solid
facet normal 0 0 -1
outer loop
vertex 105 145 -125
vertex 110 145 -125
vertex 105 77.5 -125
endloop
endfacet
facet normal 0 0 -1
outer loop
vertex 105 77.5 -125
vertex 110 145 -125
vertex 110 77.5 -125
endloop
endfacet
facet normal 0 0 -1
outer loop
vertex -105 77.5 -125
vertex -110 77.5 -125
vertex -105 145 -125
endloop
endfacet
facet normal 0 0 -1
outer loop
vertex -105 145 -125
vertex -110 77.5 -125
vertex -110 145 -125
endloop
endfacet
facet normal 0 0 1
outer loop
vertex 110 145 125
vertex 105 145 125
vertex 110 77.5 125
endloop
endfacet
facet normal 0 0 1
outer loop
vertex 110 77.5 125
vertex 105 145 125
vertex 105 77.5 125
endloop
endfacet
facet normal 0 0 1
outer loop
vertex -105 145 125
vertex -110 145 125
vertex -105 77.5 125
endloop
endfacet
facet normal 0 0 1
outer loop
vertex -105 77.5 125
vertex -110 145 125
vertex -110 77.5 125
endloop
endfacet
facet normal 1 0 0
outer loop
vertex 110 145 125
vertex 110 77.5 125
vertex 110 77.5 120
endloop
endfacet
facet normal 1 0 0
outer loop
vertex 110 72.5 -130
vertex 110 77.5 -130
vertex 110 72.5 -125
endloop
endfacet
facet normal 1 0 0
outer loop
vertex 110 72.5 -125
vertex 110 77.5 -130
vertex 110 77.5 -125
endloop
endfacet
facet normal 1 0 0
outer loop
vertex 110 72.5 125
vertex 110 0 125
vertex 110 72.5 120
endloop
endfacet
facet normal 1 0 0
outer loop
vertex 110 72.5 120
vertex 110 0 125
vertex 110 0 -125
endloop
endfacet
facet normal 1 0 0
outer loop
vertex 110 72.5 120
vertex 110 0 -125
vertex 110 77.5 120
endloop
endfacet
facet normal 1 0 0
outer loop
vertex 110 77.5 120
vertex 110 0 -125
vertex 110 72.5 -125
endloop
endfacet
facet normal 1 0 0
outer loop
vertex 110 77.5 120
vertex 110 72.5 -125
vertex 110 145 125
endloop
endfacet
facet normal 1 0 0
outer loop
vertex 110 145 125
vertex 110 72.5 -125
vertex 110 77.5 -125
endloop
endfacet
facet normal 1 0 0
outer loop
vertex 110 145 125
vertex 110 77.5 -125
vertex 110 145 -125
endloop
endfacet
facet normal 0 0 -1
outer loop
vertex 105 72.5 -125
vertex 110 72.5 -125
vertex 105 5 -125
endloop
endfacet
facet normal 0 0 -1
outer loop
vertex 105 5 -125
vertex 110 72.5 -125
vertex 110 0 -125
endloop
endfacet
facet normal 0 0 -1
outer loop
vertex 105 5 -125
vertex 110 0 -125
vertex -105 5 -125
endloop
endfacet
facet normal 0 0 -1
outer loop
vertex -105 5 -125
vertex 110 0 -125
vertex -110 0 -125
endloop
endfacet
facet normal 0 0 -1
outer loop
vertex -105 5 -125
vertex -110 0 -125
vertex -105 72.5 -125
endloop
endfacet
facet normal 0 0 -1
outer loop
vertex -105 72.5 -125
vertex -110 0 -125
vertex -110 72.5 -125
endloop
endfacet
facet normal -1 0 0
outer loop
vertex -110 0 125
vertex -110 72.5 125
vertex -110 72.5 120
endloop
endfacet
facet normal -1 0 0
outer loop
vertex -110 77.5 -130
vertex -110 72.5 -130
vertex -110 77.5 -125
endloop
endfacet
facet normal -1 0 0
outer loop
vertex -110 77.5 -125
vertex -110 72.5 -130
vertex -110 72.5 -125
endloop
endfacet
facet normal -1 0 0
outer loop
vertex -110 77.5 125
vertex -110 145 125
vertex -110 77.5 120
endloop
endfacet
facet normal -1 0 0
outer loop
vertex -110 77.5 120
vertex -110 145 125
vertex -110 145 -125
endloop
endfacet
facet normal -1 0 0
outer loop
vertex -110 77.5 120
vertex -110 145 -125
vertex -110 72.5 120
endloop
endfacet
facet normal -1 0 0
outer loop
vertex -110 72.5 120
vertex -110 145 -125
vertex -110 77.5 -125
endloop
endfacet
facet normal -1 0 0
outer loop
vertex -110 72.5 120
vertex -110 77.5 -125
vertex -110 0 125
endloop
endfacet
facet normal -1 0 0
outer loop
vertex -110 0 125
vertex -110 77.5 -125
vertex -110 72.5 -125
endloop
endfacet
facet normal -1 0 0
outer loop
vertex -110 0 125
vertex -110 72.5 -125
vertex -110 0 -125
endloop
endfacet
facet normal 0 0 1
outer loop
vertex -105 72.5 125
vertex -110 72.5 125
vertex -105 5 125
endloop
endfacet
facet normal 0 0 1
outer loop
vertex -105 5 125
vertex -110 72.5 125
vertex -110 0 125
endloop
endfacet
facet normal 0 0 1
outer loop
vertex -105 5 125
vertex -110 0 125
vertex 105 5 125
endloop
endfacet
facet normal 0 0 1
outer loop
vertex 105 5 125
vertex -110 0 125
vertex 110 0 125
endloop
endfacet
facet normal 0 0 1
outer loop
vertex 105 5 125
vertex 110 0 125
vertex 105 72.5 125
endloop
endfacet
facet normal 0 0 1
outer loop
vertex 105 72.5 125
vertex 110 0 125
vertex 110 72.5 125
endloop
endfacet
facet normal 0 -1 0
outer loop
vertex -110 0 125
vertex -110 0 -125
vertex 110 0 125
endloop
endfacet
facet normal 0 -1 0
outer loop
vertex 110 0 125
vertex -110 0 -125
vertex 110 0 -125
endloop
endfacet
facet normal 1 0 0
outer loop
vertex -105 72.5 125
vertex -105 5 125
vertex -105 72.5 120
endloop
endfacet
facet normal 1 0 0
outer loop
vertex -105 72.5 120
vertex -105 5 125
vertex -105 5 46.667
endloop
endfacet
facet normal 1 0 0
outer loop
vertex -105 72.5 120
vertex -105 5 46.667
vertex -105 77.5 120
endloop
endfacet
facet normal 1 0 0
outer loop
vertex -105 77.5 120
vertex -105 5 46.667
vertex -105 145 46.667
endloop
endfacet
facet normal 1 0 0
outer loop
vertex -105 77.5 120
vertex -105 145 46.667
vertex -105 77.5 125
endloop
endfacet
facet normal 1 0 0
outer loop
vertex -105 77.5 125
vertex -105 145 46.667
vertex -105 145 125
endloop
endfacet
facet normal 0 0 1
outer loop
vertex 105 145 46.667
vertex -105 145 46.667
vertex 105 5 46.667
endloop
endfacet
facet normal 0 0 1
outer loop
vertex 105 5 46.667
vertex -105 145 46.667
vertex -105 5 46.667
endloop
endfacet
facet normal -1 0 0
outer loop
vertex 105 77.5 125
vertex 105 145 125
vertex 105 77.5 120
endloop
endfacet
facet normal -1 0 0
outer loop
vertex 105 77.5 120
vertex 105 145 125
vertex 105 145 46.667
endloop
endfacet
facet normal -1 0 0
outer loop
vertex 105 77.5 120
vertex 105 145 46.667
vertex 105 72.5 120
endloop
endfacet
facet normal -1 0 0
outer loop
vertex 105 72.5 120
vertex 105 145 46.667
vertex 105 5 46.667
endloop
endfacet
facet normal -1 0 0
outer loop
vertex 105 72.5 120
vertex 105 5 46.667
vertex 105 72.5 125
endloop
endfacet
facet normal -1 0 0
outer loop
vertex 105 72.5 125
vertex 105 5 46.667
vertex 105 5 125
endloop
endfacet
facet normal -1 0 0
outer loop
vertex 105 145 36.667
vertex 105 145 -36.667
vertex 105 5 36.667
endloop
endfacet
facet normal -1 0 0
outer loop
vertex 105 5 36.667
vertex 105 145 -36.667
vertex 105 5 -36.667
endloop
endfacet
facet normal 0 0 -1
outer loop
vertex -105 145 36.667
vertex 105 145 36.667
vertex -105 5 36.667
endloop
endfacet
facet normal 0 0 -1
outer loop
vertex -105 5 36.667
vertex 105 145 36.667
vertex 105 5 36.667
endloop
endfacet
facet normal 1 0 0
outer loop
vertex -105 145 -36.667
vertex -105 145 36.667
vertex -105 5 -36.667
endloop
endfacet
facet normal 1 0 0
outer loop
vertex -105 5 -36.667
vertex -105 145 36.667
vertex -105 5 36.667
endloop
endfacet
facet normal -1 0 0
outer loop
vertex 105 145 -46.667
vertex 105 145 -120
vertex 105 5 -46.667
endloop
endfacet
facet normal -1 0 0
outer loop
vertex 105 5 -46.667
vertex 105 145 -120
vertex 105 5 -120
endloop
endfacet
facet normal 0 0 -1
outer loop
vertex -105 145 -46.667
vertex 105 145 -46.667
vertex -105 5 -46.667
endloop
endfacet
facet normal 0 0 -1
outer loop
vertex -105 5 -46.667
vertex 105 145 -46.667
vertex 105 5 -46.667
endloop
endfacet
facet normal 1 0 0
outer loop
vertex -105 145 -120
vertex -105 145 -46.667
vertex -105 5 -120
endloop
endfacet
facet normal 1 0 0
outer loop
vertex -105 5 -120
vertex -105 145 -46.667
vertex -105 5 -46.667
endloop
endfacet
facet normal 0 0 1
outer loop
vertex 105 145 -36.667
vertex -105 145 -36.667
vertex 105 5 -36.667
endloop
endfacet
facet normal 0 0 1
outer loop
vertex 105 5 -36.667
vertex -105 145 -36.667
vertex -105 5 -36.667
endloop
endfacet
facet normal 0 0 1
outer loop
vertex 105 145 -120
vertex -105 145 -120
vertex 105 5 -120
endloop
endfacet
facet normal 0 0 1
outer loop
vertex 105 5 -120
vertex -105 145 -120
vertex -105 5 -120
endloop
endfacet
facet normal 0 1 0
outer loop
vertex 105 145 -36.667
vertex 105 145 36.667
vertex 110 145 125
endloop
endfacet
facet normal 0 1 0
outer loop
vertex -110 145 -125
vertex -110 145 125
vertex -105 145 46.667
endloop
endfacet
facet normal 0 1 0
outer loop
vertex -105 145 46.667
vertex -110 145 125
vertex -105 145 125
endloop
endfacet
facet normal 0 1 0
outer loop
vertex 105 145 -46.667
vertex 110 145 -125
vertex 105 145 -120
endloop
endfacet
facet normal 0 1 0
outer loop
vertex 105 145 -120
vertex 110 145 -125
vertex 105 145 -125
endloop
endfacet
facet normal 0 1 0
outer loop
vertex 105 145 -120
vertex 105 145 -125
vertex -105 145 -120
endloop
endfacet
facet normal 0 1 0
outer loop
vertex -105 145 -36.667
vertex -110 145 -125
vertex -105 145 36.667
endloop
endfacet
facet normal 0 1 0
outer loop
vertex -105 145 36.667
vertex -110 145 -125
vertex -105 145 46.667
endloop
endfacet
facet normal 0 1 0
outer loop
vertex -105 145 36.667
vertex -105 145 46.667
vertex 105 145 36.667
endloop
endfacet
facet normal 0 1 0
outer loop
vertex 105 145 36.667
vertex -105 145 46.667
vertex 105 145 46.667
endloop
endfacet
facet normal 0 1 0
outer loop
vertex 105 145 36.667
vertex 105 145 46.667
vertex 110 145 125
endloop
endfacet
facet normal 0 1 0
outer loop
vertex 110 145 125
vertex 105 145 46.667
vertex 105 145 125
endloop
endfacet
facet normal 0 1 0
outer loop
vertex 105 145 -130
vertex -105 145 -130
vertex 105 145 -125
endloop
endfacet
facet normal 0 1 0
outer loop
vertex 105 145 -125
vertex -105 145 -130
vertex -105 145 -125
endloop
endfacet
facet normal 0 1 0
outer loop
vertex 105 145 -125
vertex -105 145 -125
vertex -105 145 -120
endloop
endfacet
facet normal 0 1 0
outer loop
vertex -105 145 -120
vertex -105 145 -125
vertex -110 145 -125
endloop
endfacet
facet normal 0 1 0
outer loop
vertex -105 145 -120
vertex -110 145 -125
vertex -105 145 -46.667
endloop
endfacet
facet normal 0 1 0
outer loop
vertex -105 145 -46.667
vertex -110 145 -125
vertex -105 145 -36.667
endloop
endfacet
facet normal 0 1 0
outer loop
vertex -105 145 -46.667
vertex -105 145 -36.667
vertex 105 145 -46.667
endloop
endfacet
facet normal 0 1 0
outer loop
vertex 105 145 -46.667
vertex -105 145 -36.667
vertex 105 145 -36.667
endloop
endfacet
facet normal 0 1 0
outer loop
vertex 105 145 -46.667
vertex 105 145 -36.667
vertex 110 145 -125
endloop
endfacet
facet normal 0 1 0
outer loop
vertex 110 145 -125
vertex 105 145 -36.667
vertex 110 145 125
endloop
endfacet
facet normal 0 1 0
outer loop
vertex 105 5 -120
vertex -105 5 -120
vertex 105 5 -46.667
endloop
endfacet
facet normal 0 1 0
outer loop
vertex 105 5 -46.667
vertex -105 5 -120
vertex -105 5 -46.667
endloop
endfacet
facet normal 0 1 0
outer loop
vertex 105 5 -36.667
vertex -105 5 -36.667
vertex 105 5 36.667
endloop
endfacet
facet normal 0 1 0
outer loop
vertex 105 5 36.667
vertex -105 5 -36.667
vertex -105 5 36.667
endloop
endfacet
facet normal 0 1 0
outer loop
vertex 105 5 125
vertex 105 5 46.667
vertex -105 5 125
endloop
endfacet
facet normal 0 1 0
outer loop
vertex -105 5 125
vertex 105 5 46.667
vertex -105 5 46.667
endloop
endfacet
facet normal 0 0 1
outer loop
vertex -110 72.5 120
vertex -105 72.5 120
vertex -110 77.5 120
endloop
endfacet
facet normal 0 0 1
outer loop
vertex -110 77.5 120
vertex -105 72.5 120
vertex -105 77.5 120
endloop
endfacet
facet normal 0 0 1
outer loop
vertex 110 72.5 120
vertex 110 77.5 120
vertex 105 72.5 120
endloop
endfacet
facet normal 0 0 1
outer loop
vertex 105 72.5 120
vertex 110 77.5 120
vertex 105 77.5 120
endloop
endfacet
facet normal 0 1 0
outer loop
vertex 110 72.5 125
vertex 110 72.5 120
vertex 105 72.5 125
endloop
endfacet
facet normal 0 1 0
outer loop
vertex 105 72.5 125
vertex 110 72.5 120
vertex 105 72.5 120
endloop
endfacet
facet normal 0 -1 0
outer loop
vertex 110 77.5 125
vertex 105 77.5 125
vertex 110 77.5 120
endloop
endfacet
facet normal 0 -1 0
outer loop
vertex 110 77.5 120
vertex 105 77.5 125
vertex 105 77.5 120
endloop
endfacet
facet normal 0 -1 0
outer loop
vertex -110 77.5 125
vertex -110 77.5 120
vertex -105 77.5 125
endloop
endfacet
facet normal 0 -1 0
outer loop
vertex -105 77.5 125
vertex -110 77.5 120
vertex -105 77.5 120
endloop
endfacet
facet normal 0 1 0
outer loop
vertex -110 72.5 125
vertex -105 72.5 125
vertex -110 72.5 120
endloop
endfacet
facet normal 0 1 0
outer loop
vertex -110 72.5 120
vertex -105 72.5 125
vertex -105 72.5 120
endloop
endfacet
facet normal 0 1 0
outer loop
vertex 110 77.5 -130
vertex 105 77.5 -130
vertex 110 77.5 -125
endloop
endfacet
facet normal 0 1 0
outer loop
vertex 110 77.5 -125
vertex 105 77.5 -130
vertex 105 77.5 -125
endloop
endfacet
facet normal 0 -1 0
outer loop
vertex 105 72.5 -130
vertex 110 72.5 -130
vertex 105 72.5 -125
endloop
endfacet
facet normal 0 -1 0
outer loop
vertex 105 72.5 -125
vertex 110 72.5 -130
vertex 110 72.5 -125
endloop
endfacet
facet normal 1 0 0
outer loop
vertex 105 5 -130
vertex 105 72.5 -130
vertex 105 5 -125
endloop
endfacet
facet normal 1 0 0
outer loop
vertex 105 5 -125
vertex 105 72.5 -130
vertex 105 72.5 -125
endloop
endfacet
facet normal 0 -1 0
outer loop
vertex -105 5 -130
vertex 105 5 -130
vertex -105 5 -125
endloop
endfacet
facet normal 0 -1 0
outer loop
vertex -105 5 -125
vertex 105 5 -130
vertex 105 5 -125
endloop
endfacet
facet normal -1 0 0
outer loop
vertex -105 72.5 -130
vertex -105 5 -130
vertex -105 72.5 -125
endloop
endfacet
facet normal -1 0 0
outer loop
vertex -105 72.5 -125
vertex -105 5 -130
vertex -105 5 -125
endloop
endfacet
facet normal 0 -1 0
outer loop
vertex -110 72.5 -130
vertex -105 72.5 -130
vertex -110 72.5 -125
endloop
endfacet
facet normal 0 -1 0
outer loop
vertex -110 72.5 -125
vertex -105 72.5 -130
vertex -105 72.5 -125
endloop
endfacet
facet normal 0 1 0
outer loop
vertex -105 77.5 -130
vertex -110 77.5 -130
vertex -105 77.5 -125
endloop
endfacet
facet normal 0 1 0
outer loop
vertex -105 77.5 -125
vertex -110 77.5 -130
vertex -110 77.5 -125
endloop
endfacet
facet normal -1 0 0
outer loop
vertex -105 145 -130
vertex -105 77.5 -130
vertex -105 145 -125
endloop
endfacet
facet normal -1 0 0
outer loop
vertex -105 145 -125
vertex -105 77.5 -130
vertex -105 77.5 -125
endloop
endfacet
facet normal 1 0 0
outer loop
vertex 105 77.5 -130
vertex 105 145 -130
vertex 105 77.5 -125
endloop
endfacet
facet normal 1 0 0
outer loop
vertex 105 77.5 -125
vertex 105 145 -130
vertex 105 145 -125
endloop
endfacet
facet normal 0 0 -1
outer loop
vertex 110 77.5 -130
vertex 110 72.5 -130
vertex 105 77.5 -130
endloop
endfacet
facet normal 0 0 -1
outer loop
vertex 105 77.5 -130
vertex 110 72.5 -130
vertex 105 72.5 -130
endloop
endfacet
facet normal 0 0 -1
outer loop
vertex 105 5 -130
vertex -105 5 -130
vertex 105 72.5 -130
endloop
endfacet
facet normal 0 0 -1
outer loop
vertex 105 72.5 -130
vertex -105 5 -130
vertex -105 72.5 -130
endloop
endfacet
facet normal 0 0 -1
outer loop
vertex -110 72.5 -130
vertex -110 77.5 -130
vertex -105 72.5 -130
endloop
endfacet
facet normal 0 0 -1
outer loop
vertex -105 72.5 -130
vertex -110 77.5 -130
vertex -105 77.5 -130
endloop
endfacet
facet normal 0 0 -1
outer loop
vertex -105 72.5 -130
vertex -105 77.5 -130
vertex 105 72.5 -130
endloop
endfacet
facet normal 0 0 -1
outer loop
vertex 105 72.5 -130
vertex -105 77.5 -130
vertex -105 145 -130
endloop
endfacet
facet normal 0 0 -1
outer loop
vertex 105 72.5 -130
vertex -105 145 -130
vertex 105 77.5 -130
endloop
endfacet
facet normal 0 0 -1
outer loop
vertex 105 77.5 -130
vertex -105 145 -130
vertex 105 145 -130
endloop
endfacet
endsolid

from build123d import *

# Parameters (mm, degrees)
SKETCH1_W           = 220
SKETCH1_H           = 250
BOSS_EXTRUDE1_DEPTH = 5
SKETCH2_W           = 220
SKETCH2_H           = 250
SKETCH2_W_2         = 210
SKETCH2_H_2         = 73.333333333
SKETCH2_H_3         = 73.333333334
BOSS_EXTRUDE2_DEPTH = 140
SKETCH3_W           = 5
SKETCH3_H           = 5
CUT_EXTRUDE1_DEPTH  = 5
BOSS_EXTRUDE3_START = -5
BOSS_EXTRUDE3_DEPTH = 5


with BuildPart() as part:
    # Sketch1 → Boss-Extrude1 (new body)
    with BuildSketch(Plane(origin=(0, 0, 0), x_dir=(1, 0, 0), z_dir=(0, 1, 0))):
        Rectangle(SKETCH1_W, SKETCH1_H)
    extrude(amount=BOSS_EXTRUDE1_DEPTH)

    # Sketch2 → Boss-Extrude2 (add)
    with BuildSketch(Plane(origin=(0, 5, 0), x_dir=(1, 0, 0), z_dir=(0, 1, 0))):
        Rectangle(SKETCH2_W, SKETCH2_H)
        with Locations((0, 83.333333334)):
            Rectangle(SKETCH2_W_2, SKETCH2_H_2, mode=Mode.SUBTRACT)
        with Locations((0, -83.333333334)):
            Rectangle(SKETCH2_W_2, SKETCH2_H_2, mode=Mode.SUBTRACT)
        Rectangle(SKETCH2_W_2, SKETCH2_H_3, mode=Mode.SUBTRACT)
    extrude(amount=BOSS_EXTRUDE2_DEPTH)

    # Sketch3 → Cut-Extrude1 (cut)
    with BuildSketch(Plane.XY.offset(125)):
        Polygon((-105, 145), (-105, 77.5), (-105, 72.5), (-105, 5), (105, 5), (105, 72.5), (105, 77.5), (105, 145), align=None)
        with Locations((107.5, 75)):
            Rectangle(SKETCH3_W, SKETCH3_H)
        with Locations((-107.5, 75)):
            Rectangle(SKETCH3_W, SKETCH3_H)
    extrude(amount=-CUT_EXTRUDE1_DEPTH, mode=Mode.SUBTRACT)

    # Sketch4 → Boss-Extrude3 (add)
    with BuildSketch(Plane.XY.offset(-120).offset(BOSS_EXTRUDE3_START)):
        Polygon((105, 145), (-105, 145), (-105, 77.5), (-110, 77.5), (-110, 72.5), (-105, 72.5), (-105, 5), (105, 5), (105, 72.5), (110, 72.5), (110, 77.5), (105, 77.5), align=None)
    extrude(amount=-BOSS_EXTRUDE3_DEPTH)


solid = part.part
